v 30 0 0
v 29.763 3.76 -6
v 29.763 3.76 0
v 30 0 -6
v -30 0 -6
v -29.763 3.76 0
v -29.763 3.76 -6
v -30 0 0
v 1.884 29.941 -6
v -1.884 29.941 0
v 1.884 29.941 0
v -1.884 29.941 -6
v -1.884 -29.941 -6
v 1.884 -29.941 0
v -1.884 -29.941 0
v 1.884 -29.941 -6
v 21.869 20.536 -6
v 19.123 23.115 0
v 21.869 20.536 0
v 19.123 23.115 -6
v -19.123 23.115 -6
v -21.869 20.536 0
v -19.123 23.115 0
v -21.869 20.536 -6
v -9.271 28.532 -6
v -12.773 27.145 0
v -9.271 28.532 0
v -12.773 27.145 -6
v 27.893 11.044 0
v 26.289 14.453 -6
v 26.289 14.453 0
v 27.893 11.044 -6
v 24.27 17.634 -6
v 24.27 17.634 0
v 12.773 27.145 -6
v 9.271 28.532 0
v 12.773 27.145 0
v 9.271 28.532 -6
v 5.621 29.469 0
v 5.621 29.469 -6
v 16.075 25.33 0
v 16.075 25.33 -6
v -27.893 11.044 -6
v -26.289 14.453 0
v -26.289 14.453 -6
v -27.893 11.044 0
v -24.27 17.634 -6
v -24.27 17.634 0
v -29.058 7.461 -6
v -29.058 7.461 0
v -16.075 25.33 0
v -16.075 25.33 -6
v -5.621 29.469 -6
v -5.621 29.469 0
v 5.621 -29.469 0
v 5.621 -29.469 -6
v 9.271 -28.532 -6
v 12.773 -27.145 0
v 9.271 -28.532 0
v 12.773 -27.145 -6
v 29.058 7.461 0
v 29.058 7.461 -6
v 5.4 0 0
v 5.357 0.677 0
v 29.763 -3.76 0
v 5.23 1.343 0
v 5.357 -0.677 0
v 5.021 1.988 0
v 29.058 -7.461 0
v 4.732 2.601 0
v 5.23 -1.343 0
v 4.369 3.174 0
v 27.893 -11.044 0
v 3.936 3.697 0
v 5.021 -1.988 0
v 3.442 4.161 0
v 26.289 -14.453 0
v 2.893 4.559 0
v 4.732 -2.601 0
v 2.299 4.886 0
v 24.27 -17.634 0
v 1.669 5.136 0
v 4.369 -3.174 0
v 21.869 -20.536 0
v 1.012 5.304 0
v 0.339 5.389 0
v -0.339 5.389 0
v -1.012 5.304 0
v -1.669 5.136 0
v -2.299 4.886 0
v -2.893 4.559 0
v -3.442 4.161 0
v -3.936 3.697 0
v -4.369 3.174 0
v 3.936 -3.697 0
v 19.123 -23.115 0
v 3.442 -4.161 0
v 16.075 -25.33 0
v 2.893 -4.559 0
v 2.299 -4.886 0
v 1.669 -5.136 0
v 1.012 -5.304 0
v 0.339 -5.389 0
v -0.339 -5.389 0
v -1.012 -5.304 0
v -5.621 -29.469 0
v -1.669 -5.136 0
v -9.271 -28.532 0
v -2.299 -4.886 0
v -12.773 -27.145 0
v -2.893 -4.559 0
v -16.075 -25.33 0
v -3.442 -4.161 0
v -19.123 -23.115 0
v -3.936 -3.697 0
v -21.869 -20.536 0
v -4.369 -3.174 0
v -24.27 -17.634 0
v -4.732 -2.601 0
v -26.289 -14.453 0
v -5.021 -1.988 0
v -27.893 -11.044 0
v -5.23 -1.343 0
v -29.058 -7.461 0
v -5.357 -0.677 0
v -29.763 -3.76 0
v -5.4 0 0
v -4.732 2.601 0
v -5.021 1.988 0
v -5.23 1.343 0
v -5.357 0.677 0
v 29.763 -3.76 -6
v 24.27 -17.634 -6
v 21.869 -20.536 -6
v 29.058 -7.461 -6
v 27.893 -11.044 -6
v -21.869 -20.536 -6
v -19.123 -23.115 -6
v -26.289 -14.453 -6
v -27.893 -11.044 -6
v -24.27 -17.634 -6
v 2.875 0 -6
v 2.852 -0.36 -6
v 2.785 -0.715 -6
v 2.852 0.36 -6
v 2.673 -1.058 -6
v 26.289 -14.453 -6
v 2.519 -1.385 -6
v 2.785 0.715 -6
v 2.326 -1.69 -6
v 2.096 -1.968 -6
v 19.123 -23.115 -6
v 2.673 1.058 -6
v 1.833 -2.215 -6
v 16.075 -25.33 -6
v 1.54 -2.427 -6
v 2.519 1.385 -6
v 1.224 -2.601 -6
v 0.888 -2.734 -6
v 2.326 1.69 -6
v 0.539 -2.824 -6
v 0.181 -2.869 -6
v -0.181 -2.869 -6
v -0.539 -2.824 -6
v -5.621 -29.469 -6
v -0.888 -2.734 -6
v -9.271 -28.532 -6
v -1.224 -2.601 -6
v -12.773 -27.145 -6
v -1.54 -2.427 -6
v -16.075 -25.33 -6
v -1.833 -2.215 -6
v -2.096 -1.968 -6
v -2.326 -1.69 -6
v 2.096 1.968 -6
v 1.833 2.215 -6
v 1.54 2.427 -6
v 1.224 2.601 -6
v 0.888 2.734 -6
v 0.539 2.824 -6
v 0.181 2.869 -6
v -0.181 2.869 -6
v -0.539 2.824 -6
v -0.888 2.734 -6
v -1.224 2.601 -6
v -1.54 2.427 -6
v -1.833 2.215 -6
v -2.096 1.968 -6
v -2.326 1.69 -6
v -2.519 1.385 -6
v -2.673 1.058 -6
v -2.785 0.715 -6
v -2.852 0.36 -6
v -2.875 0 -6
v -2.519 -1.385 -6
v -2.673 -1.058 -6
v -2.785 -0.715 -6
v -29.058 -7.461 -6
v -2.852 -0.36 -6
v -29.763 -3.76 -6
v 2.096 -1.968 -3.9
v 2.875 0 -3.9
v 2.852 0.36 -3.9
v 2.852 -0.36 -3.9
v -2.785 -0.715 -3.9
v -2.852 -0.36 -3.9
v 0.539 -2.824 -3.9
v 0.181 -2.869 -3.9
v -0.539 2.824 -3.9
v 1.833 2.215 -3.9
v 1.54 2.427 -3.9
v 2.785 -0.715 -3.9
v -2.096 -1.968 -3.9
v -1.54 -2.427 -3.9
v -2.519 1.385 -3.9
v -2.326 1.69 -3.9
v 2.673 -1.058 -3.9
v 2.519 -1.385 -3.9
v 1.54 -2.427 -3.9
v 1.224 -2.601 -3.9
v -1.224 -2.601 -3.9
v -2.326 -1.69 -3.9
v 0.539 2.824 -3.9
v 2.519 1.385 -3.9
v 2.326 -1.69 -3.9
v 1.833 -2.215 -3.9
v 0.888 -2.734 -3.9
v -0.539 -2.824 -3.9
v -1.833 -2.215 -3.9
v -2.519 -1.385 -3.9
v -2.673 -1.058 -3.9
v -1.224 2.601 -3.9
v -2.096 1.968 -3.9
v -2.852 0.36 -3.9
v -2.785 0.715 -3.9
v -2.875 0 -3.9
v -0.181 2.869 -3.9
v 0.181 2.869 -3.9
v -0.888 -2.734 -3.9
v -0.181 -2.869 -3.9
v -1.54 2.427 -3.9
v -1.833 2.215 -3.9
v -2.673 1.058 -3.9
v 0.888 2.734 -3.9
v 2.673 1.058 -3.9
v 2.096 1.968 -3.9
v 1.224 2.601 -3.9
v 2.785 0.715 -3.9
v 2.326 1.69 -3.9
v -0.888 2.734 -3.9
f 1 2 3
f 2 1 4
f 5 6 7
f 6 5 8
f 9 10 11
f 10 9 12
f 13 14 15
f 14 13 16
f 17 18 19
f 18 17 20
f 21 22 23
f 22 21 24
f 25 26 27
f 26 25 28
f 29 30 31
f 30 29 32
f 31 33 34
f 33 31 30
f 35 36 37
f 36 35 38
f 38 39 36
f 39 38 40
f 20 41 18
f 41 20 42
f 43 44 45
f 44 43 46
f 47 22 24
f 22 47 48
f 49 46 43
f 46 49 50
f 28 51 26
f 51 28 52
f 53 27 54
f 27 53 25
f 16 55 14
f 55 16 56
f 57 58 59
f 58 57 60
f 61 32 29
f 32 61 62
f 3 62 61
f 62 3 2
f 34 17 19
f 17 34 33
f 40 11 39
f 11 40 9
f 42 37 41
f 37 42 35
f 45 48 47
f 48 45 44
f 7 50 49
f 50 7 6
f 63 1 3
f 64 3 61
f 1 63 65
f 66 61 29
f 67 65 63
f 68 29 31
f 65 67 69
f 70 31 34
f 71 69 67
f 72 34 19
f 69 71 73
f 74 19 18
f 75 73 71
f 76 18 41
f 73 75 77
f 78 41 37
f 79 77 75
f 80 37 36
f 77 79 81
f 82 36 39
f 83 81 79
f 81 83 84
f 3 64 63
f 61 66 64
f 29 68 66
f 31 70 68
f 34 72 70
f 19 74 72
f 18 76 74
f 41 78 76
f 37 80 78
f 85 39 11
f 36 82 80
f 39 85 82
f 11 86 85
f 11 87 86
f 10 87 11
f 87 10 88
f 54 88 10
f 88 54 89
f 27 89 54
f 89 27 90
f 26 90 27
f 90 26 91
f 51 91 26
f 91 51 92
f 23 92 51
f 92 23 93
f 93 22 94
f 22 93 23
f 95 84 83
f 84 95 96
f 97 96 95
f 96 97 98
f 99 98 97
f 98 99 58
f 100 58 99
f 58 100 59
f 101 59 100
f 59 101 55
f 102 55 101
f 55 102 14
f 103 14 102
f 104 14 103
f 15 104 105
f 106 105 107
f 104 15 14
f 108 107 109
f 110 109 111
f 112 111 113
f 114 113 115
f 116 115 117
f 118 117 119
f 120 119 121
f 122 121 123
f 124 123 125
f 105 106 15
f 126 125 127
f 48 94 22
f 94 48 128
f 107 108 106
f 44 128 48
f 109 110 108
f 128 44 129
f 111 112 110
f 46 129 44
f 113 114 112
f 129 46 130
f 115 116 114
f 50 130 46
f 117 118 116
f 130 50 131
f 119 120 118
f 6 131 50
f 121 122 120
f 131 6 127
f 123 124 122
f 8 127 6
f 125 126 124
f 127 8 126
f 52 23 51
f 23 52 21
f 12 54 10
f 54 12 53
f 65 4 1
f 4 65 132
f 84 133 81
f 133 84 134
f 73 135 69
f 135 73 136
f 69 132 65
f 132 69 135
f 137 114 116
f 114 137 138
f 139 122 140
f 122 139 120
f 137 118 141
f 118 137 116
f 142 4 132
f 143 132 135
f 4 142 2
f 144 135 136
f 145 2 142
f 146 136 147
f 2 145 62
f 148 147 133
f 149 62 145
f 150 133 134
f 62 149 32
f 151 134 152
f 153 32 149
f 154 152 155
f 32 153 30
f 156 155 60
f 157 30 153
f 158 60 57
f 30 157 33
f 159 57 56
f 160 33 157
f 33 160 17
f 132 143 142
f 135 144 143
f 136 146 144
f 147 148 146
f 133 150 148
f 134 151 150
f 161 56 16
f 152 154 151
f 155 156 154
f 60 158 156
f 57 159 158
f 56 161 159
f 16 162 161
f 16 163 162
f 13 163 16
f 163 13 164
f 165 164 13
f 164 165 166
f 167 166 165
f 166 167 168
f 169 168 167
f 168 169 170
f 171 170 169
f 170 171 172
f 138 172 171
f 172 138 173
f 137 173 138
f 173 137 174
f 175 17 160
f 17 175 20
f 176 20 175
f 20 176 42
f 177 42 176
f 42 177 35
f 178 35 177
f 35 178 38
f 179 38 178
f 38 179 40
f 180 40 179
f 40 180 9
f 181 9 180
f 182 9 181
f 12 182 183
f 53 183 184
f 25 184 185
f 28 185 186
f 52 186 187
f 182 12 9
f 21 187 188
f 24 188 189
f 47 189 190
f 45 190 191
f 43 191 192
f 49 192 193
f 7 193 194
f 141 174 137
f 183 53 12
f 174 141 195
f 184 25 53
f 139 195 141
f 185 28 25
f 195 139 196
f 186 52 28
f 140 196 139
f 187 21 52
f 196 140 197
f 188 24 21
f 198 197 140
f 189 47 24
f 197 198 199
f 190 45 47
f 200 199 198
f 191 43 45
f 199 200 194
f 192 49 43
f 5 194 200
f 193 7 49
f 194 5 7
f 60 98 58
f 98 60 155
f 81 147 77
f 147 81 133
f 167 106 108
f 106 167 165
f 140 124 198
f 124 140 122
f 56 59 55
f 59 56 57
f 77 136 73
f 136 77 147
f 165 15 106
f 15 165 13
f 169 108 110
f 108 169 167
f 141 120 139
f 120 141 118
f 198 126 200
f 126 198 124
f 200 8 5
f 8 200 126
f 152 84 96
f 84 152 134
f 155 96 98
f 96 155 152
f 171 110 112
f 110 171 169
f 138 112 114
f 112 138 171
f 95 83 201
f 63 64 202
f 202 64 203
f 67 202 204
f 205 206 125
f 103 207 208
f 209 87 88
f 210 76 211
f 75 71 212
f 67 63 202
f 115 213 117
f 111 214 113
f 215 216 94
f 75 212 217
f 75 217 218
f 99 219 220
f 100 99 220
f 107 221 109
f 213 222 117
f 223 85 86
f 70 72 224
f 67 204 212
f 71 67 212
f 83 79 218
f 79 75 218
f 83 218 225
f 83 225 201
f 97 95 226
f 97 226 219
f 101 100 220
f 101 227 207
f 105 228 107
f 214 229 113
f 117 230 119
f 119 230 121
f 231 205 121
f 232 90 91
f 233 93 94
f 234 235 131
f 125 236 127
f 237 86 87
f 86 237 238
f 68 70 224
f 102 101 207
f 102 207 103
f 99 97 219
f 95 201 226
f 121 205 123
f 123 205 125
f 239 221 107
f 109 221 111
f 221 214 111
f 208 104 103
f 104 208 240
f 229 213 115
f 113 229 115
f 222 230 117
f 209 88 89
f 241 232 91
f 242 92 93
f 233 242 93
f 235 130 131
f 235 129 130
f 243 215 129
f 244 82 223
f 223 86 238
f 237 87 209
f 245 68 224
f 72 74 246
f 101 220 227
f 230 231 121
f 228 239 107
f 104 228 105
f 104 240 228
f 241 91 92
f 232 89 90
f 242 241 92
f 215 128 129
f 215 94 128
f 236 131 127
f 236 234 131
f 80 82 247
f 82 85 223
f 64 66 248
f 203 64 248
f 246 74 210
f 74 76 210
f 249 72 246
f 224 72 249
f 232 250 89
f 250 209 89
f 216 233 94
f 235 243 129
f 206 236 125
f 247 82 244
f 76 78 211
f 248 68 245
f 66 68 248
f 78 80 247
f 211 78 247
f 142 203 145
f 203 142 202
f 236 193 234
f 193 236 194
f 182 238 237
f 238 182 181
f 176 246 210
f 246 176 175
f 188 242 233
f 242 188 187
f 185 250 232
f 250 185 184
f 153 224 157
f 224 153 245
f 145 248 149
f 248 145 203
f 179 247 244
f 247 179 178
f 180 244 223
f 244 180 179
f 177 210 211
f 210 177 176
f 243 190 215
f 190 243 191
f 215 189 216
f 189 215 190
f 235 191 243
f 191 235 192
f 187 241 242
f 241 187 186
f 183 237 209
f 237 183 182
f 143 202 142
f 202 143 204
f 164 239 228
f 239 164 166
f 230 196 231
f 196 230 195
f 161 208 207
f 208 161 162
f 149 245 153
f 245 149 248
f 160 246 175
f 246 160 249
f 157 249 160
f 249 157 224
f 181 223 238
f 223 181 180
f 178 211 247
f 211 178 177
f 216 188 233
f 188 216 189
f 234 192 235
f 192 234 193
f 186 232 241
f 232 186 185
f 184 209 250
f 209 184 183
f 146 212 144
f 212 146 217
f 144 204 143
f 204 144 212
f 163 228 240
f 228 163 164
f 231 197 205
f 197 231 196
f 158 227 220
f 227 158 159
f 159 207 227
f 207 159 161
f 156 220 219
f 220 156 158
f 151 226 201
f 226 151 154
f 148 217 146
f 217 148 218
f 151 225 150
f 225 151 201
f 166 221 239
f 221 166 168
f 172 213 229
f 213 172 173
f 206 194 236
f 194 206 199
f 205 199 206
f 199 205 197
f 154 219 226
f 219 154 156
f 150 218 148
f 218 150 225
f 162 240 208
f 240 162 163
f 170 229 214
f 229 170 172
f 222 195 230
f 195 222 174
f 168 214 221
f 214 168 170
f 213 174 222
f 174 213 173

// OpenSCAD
$fn = 50;


difference() {
	union() {
		translate(v = [0, 0, -6.0000000000]) {
			cylinder(h = 6, r = 30.0000000000);
		}
		translate(v = [0, 0, -6.0000000000]) {
			cylinder(h = 6, r = 2.8750000000);
		}
	}
	union() {
		translate(v = [0, 0, 0]) {
			rotate(a = [0, 0, 0]) {
				difference() {
					union() {
						translate(v = [0, 0, -6.0000000000]) {
							cylinder(h = 6, r = 2.6000000000);
						}
						translate(v = [0, 0, -3.9000000000]) {
							cylinder(h = 3.9000000000, r1 = 2.8750000000, r2 = 5.4000000000);
						}
						translate(v = [0, 0, -6.0000000000]) {
							cylinder(h = 6, r = 2.8750000000);
						}
						translate(v = [0, 0, -6.0000000000]) {
							cylinder(h = 6, r = 2.6000000000);
						}
					}
					union();
				}
			}
		}
	}
}
